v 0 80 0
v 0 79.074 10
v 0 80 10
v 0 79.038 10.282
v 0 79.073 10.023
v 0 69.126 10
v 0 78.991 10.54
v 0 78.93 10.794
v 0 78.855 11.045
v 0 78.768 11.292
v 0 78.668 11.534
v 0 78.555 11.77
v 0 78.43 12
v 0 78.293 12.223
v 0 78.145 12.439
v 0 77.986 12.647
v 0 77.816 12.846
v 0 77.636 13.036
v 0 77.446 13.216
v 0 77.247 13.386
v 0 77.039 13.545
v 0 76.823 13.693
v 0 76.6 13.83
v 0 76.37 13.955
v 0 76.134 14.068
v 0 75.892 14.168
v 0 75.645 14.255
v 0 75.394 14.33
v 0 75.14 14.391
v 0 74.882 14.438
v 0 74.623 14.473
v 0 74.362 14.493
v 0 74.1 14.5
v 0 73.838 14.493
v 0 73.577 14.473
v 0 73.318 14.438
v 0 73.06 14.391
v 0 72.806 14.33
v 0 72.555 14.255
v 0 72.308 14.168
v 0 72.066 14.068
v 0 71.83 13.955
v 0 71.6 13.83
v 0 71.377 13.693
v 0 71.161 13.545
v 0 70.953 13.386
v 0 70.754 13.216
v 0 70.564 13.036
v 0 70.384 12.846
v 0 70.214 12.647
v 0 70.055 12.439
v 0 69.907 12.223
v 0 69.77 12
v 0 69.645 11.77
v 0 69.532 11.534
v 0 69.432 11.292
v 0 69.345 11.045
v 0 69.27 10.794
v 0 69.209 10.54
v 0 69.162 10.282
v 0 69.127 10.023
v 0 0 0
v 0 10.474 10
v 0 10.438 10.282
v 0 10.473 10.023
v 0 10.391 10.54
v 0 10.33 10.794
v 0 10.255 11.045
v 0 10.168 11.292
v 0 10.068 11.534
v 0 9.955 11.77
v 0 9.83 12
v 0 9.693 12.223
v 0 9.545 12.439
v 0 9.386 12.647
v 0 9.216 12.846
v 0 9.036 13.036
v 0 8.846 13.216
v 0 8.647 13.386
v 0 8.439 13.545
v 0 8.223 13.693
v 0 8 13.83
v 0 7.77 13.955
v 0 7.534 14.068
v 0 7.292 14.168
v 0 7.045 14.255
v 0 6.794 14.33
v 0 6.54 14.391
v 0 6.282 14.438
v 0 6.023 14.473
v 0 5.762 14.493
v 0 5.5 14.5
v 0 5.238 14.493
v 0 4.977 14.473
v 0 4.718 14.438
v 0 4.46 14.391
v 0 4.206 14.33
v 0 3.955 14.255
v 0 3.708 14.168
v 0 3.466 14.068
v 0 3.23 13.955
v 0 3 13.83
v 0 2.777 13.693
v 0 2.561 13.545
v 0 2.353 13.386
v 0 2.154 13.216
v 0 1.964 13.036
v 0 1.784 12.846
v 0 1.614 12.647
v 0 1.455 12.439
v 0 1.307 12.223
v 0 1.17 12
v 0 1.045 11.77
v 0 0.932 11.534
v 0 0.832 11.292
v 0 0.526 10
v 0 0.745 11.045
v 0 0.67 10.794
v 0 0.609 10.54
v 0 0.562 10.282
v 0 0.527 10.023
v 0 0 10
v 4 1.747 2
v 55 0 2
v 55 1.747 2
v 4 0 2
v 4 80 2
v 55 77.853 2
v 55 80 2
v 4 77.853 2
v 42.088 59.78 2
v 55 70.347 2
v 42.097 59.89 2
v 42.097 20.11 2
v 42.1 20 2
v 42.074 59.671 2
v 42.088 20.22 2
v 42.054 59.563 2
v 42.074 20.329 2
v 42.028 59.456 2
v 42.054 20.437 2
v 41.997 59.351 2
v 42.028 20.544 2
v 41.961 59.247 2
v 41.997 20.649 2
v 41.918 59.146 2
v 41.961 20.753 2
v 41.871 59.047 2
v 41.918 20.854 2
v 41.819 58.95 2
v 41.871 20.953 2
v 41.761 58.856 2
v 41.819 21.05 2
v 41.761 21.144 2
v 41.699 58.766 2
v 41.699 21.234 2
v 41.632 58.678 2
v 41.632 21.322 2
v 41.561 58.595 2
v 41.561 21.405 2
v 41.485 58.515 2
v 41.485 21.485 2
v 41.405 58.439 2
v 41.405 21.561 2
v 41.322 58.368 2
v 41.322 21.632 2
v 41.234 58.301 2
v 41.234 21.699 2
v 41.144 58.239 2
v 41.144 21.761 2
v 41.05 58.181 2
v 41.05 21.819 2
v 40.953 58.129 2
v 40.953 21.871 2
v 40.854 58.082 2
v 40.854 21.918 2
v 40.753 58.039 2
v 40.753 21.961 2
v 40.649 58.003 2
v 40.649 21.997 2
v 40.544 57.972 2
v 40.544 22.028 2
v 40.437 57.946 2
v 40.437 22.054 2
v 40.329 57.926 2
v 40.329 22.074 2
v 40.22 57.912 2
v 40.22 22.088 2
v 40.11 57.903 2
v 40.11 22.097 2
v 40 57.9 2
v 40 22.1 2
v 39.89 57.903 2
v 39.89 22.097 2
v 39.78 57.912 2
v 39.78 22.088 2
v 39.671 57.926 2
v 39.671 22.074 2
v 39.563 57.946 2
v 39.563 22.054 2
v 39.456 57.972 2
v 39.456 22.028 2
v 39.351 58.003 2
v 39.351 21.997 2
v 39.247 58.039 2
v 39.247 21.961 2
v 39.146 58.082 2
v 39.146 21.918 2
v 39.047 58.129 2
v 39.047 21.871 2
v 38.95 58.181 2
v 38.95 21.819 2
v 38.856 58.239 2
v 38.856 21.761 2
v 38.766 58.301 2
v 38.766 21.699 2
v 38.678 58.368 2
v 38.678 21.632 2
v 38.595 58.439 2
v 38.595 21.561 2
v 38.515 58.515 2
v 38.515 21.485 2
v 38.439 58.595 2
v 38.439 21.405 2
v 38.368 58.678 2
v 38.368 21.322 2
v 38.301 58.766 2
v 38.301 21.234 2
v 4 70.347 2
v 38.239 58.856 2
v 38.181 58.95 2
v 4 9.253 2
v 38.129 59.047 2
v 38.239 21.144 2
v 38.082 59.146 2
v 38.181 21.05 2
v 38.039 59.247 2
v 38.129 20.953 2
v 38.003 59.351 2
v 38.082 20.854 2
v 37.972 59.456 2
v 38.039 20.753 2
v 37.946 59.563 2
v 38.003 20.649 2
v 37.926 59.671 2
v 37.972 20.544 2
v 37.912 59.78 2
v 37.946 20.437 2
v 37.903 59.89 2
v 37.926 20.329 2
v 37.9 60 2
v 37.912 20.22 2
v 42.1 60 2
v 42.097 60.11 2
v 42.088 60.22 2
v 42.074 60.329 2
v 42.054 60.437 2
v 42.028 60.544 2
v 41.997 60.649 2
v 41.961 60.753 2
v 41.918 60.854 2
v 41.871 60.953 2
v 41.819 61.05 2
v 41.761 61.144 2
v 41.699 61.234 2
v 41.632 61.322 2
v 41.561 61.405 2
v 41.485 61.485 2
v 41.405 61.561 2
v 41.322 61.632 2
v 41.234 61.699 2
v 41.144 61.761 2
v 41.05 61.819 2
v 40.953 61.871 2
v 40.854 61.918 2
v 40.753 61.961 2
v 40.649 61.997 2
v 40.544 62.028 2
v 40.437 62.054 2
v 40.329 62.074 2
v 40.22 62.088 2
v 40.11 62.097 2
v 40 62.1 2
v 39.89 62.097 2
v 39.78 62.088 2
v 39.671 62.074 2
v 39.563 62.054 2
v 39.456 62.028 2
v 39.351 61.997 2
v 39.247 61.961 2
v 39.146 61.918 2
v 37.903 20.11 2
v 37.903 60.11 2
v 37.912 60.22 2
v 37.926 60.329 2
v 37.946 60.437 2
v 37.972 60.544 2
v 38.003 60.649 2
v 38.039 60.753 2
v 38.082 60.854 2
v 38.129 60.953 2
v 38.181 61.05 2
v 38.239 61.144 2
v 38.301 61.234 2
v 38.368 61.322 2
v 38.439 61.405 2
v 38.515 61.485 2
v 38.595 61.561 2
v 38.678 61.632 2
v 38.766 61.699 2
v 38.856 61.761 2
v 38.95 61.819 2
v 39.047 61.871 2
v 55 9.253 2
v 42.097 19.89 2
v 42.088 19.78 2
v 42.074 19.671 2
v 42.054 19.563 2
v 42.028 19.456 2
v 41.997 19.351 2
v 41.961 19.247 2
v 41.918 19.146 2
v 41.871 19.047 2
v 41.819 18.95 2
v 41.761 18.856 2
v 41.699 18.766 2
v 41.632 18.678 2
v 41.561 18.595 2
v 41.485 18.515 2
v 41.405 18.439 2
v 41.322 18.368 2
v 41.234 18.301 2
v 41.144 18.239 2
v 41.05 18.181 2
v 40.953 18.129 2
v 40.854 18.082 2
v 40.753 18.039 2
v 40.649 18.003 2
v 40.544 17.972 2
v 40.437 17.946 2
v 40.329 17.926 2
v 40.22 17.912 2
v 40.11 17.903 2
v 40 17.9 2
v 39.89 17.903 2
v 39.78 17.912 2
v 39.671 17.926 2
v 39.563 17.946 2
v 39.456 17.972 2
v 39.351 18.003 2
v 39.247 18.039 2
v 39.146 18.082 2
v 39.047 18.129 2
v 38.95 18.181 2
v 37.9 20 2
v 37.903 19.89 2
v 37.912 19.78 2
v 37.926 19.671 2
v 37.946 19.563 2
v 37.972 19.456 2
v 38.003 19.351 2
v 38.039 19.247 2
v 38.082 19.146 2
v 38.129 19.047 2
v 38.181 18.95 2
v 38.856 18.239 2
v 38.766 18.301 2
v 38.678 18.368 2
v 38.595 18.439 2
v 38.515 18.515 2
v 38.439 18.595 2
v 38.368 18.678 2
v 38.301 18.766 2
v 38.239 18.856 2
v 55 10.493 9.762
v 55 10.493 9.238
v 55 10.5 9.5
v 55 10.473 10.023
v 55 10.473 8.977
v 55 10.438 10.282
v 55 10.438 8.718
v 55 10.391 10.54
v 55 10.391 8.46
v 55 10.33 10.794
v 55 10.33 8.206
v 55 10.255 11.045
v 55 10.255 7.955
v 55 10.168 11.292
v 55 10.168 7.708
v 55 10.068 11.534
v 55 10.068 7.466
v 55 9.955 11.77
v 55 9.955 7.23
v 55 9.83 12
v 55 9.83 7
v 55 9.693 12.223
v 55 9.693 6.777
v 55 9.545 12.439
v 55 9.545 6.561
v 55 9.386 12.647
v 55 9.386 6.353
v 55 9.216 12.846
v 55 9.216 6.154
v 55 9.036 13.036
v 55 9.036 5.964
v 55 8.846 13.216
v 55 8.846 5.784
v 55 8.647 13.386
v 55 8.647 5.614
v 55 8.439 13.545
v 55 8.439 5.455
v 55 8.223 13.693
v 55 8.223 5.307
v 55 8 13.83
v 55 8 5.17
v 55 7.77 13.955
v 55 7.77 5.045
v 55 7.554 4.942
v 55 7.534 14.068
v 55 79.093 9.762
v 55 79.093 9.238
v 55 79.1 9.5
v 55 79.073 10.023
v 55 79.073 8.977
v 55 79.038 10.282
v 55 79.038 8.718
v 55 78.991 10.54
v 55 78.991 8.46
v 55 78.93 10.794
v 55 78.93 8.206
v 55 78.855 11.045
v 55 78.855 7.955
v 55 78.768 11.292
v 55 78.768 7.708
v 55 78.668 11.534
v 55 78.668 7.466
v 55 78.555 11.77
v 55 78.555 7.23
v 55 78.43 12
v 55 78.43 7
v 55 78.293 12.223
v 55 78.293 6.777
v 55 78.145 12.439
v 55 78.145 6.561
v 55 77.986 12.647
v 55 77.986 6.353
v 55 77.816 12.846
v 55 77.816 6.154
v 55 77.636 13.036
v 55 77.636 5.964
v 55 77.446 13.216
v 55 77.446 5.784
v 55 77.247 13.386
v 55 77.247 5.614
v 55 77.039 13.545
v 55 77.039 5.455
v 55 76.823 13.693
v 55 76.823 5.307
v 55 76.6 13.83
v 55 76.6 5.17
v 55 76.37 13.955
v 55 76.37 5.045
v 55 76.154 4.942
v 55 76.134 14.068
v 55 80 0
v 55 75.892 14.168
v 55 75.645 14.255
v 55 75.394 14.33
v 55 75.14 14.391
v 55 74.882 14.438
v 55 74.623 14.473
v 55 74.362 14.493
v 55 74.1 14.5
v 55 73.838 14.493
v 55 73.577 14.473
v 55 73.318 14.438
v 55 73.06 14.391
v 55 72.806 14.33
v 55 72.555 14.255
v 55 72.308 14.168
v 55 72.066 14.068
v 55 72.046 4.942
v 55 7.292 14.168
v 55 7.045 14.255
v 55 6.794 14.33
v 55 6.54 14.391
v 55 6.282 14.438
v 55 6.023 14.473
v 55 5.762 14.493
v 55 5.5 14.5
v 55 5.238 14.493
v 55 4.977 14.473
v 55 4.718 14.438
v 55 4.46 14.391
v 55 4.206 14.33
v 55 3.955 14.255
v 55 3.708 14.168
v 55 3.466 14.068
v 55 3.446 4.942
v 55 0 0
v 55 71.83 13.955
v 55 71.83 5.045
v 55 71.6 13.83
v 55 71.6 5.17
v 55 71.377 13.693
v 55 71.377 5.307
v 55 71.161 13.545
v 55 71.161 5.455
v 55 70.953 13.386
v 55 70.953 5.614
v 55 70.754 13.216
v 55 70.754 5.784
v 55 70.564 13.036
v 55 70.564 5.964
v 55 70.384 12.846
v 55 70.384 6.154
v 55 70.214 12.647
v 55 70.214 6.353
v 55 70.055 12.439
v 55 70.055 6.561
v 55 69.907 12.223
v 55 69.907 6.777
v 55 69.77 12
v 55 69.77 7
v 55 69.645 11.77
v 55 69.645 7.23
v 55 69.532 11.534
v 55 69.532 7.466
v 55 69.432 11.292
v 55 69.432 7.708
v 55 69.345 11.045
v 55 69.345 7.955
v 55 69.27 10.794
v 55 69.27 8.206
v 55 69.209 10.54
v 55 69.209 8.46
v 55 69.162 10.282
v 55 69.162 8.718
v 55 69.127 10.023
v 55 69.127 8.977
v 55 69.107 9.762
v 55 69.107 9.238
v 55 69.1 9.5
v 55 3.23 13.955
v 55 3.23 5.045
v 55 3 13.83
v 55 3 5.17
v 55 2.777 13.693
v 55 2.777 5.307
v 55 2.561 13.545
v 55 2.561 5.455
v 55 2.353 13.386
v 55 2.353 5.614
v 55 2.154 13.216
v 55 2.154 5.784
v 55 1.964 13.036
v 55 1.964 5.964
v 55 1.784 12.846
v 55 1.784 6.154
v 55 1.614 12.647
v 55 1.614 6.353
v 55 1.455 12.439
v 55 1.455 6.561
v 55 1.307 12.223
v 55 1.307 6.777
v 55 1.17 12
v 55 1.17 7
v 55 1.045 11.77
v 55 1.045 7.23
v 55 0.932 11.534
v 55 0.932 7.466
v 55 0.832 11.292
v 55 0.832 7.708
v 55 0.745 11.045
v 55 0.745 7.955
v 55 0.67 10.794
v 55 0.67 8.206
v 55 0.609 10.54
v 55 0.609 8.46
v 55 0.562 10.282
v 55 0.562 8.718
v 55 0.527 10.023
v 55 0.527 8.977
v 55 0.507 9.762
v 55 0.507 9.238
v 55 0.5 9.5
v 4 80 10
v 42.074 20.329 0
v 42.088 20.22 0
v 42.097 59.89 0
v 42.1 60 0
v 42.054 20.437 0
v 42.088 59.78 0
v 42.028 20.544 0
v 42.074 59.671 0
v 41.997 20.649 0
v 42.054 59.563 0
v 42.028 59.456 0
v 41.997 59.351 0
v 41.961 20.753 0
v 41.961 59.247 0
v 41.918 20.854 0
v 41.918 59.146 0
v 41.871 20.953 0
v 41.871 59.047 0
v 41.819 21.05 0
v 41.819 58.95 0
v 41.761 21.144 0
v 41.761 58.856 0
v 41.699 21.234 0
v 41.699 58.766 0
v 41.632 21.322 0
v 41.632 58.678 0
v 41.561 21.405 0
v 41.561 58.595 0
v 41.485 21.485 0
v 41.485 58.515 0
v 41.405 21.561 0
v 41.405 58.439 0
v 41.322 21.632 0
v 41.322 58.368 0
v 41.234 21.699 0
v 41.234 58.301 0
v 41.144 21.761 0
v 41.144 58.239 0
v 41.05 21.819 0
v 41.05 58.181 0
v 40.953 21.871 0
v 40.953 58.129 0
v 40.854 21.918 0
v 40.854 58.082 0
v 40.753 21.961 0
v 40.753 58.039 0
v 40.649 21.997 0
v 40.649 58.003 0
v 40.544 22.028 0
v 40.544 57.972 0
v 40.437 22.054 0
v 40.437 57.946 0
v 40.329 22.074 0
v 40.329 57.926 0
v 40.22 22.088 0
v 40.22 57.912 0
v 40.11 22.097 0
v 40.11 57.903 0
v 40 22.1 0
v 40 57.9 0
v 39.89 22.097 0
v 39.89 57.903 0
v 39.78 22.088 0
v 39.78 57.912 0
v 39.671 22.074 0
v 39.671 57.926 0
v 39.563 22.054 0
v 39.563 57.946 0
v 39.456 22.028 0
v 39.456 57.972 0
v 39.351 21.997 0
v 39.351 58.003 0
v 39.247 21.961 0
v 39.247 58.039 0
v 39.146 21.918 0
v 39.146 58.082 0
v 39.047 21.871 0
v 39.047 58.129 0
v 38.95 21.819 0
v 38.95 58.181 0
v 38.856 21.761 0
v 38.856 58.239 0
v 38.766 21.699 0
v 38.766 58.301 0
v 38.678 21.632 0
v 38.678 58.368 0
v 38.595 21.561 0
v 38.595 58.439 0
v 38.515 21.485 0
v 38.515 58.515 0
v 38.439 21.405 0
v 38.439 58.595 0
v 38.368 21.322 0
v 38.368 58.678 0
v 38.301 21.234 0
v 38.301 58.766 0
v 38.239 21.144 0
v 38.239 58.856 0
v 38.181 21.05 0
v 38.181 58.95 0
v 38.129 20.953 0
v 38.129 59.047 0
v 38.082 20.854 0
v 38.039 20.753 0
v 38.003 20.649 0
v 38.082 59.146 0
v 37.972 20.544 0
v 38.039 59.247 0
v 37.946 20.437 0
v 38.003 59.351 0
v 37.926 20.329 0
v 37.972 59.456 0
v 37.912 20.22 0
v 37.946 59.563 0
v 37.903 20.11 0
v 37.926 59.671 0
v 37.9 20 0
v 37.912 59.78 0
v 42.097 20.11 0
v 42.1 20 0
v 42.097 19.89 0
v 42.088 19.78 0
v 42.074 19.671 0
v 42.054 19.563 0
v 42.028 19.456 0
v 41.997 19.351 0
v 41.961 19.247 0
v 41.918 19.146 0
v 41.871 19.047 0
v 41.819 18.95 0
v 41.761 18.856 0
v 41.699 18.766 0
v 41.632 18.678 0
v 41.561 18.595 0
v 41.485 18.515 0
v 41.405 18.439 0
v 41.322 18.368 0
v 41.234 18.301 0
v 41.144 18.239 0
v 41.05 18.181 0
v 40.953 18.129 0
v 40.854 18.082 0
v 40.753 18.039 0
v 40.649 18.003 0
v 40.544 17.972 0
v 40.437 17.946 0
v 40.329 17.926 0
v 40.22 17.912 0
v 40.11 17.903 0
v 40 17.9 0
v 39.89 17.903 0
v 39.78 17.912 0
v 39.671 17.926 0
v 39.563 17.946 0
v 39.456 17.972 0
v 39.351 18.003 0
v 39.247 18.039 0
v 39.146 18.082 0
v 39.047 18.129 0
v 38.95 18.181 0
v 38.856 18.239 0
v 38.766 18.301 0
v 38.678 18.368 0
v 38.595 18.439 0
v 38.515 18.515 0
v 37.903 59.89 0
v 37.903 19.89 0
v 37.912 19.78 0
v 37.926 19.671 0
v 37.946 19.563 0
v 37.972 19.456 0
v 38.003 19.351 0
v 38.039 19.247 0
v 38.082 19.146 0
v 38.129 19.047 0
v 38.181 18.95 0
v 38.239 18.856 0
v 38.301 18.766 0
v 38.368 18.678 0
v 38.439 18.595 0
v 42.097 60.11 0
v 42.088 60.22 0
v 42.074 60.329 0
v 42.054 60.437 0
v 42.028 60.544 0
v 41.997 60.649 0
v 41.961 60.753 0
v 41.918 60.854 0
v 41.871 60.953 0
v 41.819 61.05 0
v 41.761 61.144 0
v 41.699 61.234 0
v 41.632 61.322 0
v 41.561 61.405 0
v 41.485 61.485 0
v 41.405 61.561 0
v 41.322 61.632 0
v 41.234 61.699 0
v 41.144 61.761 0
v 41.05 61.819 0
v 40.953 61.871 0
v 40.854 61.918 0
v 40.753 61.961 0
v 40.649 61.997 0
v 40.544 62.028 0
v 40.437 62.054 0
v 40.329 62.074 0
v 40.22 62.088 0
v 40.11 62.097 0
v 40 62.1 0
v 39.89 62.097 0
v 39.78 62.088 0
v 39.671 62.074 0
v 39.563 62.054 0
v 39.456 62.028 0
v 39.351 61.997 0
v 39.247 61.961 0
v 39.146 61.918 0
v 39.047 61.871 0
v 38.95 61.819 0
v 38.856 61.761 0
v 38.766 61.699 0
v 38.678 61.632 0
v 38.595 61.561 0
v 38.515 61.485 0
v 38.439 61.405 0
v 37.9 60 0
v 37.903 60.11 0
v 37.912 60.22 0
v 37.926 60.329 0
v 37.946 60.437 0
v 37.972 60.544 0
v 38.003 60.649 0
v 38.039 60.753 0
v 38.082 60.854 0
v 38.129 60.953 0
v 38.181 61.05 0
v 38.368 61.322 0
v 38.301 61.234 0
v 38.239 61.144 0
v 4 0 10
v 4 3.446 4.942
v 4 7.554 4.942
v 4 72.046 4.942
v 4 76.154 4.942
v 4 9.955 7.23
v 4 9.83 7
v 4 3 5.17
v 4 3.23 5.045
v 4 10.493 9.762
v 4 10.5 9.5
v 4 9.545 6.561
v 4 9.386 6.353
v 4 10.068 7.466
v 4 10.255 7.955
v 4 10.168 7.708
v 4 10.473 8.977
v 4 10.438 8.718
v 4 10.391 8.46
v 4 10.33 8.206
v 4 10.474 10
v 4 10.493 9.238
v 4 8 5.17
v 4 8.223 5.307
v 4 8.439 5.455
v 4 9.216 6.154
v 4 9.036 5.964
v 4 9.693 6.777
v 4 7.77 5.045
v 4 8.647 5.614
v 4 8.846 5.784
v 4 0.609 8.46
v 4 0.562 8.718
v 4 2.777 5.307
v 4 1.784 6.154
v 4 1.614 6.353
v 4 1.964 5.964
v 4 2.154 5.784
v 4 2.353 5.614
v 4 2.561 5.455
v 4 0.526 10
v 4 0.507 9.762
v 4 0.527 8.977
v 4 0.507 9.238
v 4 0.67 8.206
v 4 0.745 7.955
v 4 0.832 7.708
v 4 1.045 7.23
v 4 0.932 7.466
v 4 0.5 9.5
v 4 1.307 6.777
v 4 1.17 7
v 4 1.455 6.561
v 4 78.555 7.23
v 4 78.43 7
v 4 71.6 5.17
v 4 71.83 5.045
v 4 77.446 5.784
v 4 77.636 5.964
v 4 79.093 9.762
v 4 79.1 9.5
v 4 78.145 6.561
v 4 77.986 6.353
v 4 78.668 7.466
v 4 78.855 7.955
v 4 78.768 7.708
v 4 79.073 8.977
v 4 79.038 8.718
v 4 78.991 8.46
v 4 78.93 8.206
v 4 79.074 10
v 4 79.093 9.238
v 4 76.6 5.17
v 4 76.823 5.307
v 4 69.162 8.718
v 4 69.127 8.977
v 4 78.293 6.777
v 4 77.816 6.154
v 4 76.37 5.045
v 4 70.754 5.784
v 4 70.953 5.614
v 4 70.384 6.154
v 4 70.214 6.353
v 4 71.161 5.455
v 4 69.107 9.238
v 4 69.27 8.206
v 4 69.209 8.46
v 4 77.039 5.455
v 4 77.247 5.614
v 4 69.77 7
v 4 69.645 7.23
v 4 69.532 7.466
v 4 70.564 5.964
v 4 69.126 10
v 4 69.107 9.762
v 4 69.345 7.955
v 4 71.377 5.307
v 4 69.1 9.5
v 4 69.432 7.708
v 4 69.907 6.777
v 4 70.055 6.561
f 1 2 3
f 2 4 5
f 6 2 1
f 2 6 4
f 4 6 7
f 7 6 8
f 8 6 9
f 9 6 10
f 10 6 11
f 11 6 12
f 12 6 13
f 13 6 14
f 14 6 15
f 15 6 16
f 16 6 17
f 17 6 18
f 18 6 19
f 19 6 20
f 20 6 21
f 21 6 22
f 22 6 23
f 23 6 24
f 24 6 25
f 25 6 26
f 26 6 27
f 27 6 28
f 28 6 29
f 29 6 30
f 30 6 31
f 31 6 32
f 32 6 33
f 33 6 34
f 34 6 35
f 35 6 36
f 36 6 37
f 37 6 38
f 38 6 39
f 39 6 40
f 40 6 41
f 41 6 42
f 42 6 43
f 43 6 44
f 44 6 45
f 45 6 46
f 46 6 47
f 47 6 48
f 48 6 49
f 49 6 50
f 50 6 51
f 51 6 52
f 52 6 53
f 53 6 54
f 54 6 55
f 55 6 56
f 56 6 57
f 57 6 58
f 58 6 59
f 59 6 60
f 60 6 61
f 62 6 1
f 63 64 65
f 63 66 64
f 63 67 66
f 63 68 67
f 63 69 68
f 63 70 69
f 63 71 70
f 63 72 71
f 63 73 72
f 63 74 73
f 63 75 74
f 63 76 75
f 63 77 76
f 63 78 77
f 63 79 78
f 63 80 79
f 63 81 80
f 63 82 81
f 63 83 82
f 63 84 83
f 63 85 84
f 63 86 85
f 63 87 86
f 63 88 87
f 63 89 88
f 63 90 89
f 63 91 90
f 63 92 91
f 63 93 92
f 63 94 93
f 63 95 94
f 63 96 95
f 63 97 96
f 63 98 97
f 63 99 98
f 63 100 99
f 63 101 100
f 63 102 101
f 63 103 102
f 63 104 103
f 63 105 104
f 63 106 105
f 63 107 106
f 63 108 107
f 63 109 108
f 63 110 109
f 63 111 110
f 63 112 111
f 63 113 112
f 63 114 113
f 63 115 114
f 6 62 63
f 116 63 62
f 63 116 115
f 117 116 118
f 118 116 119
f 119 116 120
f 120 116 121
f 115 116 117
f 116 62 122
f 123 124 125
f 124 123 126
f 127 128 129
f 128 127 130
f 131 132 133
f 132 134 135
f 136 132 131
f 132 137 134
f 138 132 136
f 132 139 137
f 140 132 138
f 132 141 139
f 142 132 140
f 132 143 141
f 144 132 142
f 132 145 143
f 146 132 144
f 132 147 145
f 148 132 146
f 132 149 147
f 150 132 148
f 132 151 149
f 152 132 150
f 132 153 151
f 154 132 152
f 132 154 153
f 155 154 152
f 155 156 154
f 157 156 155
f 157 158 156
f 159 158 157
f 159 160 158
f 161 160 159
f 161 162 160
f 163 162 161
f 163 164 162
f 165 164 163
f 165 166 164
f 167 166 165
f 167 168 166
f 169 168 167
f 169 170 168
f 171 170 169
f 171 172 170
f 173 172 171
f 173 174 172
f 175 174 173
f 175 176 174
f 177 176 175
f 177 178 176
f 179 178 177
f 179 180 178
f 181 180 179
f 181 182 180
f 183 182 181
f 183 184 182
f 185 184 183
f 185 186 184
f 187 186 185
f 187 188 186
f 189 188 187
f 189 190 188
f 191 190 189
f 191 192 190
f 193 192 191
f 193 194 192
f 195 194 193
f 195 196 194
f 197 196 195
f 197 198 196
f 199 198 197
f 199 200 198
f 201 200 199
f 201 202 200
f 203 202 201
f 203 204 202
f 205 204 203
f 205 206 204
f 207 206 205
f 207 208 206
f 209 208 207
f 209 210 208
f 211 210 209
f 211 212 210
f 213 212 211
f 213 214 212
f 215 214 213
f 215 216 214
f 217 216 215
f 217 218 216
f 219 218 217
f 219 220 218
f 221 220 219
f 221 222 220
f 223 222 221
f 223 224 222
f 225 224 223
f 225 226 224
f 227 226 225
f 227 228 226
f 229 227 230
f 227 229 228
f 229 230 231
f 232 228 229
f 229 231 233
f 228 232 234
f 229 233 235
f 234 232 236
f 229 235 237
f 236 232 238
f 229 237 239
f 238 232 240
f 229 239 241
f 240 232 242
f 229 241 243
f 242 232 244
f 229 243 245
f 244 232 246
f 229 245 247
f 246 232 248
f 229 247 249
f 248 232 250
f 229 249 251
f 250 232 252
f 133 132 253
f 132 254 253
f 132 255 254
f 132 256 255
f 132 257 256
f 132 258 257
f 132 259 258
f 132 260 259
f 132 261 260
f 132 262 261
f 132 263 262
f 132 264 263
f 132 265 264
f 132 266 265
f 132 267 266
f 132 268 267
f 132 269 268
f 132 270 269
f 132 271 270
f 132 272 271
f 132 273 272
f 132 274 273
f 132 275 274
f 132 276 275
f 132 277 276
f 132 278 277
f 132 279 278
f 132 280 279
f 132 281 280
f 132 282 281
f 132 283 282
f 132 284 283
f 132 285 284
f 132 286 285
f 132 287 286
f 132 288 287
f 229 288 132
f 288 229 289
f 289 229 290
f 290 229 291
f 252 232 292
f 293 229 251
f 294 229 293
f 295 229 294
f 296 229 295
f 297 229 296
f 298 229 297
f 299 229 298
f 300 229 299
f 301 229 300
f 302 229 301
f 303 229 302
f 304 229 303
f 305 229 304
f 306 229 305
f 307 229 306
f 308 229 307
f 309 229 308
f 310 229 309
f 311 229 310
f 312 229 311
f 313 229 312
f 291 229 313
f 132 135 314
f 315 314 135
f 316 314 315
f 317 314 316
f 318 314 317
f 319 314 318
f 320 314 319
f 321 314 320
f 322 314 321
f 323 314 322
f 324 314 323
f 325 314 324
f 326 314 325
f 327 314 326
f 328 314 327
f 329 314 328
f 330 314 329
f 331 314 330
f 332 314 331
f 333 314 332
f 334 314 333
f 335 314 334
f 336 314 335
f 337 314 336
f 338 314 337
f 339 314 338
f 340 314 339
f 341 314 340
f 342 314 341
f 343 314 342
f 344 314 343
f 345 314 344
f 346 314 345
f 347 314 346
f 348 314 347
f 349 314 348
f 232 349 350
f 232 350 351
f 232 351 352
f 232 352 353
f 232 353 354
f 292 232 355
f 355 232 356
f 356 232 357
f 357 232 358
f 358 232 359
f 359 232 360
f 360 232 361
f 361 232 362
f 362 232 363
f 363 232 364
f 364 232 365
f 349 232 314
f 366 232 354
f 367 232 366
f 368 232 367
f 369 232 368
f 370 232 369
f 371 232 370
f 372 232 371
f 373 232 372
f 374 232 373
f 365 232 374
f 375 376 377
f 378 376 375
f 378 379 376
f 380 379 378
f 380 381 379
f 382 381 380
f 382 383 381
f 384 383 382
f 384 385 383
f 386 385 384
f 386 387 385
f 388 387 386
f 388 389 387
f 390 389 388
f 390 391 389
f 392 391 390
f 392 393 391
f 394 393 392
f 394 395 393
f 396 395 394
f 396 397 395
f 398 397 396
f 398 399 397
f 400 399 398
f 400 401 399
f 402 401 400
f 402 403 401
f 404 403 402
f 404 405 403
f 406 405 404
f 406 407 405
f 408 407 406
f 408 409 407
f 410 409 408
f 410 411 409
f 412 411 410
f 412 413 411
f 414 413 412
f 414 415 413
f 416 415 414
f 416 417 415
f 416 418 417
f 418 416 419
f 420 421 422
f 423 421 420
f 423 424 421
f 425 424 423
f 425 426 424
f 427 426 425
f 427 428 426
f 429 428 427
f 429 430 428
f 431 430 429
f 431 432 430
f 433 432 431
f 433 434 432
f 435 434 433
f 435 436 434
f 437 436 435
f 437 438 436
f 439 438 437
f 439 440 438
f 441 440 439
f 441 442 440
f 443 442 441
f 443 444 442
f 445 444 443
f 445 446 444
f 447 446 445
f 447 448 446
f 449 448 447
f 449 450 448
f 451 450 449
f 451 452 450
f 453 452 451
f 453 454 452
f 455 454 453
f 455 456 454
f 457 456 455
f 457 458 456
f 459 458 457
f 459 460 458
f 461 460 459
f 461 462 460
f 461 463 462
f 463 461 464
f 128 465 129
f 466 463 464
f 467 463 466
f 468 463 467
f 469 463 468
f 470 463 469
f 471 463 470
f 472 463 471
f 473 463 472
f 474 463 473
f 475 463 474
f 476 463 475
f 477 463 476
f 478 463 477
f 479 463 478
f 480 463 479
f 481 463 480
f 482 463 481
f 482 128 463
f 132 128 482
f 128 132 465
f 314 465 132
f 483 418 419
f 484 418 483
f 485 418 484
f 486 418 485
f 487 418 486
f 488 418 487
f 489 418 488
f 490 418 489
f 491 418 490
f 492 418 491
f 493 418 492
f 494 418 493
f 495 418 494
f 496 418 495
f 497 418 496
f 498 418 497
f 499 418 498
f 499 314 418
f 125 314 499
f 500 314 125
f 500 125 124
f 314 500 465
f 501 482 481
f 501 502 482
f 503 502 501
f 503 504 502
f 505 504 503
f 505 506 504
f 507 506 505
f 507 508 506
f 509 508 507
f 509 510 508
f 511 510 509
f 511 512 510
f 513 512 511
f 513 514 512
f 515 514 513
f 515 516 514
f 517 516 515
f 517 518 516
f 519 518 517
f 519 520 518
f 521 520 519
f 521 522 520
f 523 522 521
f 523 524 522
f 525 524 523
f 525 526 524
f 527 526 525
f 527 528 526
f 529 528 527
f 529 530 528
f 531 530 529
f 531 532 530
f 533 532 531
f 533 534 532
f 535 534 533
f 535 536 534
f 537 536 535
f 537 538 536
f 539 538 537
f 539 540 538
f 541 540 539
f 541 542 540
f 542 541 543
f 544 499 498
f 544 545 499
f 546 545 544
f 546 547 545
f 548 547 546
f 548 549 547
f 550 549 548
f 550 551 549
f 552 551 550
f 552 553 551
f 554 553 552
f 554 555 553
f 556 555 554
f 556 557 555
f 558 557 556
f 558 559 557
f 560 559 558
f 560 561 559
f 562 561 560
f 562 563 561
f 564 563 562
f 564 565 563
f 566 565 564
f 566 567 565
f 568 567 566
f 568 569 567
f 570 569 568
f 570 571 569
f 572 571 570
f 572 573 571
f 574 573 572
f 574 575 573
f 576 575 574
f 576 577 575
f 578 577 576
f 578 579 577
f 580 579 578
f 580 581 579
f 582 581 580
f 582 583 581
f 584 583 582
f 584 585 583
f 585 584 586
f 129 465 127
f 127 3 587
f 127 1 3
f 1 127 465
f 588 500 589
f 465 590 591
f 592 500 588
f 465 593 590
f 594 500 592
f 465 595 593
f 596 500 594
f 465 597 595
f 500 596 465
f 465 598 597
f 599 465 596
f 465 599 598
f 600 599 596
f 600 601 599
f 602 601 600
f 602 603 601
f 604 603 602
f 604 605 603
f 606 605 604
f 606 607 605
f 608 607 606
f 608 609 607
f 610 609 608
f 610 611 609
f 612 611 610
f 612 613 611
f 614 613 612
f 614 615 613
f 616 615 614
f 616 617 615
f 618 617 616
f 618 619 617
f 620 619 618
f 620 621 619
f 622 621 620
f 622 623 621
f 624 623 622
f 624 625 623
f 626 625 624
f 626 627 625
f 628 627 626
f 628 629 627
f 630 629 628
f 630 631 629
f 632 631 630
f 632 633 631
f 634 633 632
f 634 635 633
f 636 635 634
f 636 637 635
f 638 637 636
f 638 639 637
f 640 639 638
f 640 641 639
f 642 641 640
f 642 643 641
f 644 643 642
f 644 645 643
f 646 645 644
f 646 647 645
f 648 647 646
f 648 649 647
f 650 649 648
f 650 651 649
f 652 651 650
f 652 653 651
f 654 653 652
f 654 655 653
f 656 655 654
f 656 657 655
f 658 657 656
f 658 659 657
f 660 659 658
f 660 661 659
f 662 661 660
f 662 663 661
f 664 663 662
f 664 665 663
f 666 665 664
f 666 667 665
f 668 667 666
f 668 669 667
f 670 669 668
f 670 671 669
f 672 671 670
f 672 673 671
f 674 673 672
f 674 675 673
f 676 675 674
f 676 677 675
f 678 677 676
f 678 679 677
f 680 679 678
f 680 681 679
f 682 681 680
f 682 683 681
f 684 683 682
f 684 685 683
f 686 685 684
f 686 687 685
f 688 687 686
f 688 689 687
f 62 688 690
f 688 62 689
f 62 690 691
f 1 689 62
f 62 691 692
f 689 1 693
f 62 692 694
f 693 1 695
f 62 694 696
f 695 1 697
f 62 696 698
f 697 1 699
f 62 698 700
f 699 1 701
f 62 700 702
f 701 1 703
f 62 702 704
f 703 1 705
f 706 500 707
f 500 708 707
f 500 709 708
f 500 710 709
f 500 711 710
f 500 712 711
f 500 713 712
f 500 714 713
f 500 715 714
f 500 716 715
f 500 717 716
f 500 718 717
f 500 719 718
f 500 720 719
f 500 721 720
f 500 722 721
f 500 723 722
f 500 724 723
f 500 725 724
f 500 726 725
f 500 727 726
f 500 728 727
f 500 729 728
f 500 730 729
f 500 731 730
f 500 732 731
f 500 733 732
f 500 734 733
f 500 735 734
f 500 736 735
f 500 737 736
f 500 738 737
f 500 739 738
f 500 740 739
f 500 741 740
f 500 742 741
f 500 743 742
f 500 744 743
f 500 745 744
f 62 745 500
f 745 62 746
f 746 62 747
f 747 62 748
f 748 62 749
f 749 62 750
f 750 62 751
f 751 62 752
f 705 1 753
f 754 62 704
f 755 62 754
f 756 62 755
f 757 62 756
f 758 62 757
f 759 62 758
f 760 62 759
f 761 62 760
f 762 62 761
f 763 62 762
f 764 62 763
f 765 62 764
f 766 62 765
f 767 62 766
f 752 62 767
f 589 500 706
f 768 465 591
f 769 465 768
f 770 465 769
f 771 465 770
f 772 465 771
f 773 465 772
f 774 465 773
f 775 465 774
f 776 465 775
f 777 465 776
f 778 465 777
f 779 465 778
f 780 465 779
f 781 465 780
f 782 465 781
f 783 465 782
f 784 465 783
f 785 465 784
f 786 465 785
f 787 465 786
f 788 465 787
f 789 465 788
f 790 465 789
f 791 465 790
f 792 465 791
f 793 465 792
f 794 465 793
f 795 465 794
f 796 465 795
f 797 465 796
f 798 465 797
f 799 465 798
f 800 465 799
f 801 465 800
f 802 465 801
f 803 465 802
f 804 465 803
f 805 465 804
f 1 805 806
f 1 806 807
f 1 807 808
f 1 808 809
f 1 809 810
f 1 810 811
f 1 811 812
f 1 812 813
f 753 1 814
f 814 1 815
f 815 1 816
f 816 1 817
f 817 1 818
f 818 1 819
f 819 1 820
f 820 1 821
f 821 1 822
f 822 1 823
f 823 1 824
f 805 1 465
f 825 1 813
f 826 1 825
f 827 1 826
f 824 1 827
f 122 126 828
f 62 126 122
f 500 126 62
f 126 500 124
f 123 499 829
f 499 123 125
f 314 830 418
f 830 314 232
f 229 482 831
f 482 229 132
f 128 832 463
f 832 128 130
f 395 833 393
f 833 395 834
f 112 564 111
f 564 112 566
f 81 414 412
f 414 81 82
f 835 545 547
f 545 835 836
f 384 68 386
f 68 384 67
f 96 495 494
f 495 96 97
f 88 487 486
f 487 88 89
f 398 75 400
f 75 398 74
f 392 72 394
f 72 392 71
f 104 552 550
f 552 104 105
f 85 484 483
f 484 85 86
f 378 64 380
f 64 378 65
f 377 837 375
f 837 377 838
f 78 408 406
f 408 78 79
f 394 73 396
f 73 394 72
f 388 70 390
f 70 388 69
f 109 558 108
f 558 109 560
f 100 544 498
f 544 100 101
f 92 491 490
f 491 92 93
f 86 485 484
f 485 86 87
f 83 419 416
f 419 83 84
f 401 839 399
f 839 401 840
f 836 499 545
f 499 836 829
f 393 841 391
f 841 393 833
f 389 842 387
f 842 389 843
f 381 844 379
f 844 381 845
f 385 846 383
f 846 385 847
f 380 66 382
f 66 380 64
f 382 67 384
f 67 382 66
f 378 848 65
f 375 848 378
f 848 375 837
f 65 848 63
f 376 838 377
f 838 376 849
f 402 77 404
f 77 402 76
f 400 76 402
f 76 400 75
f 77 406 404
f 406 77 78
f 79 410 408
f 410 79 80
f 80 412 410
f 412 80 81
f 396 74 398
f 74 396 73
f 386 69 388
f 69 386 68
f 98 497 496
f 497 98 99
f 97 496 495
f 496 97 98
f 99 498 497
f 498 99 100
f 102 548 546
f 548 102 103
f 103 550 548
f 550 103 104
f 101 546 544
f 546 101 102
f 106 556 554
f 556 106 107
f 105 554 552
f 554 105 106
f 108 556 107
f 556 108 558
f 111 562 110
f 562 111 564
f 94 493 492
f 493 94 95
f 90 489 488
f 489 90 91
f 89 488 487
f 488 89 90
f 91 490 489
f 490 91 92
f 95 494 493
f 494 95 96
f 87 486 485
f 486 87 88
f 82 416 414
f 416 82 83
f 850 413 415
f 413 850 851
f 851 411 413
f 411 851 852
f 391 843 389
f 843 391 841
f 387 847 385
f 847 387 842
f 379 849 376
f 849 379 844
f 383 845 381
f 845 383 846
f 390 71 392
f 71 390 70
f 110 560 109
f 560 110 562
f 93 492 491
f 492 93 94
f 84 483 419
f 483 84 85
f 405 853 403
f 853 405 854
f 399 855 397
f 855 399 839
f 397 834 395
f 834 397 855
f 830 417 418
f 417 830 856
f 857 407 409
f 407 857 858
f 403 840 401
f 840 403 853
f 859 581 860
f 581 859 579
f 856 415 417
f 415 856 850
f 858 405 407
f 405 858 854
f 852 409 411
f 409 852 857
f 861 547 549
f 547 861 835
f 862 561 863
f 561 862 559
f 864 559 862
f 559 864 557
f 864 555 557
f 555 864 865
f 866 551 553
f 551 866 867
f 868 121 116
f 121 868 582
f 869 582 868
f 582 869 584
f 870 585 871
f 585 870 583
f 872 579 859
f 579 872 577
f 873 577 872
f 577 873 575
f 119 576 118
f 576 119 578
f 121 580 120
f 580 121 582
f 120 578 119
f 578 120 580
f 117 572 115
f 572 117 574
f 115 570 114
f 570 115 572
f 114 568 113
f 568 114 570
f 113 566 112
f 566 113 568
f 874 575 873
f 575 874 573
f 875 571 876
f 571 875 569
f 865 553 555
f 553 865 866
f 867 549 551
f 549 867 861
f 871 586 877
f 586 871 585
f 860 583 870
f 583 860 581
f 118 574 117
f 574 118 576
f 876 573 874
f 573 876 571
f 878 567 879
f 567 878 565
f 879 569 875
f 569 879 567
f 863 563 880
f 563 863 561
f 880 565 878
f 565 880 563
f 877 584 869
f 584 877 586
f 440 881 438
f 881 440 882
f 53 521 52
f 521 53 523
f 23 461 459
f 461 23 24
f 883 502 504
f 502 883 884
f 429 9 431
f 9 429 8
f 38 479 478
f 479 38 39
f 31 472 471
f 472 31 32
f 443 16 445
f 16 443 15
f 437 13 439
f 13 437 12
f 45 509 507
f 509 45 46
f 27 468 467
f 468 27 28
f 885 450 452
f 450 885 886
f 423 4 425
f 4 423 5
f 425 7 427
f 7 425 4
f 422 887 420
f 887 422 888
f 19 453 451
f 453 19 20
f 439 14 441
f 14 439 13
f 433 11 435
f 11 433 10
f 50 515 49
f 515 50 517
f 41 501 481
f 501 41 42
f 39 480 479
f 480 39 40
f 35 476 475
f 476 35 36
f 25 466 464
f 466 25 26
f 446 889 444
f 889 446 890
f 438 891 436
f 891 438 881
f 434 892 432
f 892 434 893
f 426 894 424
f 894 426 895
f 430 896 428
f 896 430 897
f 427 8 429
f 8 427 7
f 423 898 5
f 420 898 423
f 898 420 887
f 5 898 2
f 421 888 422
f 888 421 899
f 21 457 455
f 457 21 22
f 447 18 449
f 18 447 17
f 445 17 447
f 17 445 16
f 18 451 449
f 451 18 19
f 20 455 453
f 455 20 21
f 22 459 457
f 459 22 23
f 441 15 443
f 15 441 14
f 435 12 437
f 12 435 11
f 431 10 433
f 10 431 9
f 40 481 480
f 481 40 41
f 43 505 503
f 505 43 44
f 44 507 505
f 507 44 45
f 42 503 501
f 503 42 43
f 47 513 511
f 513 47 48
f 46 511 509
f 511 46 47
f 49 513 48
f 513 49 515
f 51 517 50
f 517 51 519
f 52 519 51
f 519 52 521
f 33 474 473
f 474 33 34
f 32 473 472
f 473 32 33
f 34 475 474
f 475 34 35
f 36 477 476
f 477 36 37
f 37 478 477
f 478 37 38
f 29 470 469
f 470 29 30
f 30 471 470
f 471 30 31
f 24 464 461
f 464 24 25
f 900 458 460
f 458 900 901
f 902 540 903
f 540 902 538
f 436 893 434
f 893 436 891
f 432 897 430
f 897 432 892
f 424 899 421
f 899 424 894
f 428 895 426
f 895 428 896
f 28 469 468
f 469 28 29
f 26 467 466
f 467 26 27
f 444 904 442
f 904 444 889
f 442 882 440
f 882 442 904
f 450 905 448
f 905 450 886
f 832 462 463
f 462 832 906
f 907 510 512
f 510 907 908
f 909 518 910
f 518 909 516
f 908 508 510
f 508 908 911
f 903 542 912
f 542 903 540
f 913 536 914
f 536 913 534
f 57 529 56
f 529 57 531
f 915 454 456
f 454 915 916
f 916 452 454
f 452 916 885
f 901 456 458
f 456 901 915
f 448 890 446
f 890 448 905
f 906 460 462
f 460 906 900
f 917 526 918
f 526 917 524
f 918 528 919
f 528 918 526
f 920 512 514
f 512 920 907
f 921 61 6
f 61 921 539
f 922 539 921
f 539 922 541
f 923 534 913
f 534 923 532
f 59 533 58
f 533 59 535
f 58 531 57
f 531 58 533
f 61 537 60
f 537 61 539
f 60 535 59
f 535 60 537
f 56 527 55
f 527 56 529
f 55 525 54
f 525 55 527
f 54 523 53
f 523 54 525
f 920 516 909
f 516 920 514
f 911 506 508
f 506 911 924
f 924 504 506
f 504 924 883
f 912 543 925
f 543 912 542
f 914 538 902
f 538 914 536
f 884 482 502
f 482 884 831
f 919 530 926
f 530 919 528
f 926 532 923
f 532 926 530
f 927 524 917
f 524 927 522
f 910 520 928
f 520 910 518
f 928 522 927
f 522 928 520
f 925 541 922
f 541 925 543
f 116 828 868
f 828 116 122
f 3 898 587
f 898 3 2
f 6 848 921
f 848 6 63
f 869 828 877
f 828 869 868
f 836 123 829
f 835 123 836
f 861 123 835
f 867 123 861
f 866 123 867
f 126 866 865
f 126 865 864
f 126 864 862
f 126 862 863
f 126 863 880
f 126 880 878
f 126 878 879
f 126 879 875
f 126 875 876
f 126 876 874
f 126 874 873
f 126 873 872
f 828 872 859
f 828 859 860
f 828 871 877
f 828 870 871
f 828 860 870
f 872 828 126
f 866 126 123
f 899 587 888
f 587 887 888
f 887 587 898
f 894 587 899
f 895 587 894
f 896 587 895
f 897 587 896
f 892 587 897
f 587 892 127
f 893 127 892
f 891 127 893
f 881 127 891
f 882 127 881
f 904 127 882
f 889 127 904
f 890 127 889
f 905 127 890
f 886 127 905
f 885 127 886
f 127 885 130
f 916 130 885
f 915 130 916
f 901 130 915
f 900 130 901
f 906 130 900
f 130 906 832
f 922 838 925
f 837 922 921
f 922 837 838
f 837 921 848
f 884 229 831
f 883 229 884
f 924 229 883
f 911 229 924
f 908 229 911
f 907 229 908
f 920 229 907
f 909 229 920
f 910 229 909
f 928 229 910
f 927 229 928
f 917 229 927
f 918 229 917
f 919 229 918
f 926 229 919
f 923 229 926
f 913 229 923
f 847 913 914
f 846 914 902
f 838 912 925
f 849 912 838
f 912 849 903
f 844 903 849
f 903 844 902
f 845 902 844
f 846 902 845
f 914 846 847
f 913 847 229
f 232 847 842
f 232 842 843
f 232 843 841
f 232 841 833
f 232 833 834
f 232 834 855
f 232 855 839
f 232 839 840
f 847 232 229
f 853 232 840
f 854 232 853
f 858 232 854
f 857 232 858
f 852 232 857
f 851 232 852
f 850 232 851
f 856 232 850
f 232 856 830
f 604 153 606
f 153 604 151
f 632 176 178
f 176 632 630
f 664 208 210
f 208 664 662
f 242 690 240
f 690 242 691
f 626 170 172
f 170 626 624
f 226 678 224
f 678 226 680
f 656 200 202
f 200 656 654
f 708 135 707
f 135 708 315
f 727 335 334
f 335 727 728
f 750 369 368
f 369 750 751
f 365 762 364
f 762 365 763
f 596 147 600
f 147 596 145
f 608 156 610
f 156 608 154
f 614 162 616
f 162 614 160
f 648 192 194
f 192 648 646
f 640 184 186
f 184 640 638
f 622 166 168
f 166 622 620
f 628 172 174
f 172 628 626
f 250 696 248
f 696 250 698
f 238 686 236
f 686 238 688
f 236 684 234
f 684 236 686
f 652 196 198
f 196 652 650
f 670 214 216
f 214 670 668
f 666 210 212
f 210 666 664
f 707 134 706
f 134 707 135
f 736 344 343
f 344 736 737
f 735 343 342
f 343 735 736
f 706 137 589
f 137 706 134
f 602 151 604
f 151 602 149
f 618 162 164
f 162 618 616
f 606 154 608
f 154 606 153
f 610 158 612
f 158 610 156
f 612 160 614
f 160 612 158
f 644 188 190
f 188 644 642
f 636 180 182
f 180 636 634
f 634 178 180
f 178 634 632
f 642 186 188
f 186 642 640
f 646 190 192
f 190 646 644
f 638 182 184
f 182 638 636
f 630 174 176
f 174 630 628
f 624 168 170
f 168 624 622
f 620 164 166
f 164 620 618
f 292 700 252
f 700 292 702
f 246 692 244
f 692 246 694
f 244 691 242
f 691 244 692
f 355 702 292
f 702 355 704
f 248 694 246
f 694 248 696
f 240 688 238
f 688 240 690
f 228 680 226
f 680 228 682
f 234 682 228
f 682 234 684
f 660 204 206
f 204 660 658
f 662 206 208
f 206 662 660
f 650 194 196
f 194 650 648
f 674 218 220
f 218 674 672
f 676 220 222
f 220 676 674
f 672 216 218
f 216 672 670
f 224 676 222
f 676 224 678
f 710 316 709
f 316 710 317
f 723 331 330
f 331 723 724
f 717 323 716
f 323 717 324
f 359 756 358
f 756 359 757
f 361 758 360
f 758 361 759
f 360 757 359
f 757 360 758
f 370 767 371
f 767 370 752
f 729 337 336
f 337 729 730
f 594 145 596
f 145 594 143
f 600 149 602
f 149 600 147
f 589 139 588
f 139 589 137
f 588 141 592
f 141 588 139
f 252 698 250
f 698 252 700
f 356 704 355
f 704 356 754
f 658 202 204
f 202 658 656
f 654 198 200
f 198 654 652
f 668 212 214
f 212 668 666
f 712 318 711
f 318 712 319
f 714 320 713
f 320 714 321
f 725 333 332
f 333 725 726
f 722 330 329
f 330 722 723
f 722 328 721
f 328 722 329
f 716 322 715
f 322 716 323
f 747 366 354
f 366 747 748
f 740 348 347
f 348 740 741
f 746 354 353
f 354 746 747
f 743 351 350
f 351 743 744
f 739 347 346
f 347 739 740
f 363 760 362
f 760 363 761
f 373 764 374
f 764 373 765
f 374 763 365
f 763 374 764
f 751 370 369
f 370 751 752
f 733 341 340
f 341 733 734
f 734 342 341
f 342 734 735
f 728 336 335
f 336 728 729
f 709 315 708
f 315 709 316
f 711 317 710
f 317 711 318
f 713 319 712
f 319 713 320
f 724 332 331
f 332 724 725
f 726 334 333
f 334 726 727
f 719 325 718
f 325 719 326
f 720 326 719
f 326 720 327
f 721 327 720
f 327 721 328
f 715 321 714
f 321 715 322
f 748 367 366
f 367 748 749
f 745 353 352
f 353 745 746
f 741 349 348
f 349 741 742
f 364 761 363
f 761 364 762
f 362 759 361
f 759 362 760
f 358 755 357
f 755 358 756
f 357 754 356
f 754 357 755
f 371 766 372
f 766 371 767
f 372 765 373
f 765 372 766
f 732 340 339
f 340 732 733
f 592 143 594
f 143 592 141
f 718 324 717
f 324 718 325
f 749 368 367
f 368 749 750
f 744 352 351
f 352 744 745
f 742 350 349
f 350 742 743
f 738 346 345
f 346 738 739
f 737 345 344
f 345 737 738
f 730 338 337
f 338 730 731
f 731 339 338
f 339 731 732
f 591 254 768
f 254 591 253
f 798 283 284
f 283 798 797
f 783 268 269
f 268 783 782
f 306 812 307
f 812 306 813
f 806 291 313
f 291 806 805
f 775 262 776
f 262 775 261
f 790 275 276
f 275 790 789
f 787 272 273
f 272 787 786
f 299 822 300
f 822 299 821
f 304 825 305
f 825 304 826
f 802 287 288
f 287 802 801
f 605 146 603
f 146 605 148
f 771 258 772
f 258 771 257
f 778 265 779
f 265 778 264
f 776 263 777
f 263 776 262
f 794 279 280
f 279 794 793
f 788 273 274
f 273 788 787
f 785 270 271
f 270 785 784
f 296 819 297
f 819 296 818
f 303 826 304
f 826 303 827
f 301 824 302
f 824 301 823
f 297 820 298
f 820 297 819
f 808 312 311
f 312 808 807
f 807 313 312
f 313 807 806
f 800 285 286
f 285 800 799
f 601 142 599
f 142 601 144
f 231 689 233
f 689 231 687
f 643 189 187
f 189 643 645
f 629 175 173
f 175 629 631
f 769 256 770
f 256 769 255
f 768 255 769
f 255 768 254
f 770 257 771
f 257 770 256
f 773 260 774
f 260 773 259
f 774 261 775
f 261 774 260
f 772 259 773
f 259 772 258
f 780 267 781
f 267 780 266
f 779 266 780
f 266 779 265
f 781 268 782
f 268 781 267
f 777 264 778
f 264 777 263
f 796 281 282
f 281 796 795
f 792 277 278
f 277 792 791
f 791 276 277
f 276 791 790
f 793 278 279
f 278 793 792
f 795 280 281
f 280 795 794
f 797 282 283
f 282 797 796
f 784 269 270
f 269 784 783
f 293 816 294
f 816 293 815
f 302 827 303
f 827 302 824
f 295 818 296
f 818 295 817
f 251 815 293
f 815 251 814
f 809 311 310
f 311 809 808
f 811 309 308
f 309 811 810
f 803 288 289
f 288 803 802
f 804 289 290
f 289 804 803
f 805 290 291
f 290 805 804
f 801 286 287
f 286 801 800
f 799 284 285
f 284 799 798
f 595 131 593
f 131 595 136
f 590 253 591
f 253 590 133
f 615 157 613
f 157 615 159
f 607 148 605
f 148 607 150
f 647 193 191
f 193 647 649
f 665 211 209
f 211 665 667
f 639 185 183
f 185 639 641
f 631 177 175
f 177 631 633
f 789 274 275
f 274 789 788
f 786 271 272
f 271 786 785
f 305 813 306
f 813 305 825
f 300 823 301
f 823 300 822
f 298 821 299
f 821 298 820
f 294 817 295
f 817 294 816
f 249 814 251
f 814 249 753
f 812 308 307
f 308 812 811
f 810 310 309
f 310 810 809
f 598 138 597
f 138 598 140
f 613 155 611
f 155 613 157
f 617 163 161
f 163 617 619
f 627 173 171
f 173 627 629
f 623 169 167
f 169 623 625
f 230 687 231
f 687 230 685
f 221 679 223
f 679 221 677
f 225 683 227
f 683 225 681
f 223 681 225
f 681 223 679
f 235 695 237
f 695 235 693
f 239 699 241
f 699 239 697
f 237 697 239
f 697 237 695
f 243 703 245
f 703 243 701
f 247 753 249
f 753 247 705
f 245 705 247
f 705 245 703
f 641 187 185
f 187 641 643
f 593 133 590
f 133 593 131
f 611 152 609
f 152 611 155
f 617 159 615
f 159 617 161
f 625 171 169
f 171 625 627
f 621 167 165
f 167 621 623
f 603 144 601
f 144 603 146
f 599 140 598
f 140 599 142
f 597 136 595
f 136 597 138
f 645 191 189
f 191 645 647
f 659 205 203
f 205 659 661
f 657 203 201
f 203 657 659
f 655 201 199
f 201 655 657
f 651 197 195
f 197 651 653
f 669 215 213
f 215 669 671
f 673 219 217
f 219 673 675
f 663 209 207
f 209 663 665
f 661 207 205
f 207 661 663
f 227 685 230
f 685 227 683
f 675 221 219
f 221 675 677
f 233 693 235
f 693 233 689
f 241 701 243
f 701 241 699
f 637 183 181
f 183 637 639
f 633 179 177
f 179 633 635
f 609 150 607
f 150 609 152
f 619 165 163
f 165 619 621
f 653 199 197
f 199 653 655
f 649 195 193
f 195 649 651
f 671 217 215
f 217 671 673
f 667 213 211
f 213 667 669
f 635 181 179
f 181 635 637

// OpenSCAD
difference()
{
    union()
    {
        cube([55, 80, 2]);
        translate([0,5.5,3.5])rotate([0,90,0])rotate([0,0,60])cylinder(r=5, h=55, $fn=3);
        translate([0,74.1,3.5])rotate([0,90,0])rotate([0,0,60])cylinder(r=5, h=55, $fn=3);

        translate([0,5.5, 9.5])rotate([0,90,0])rotate([0,0,60])cylinder(r=5, h=55, $fn=120);
        translate([0,74.1,9.5])rotate([0,90,0])rotate([0,0,60])cylinder(r=5, h=55, $fn=120);

        cube([4, 80, 10]);
        //translate([0,5.5,9]) cube([55, 68.5, 2]);
    }
    union()
    {
        translate([40, 20, -1]) cylinder(r=2.1, h=20, $fn=120);
        translate([40, 60, -1]) cylinder(r=2.1, h=20, $fn=120);
    }
}
